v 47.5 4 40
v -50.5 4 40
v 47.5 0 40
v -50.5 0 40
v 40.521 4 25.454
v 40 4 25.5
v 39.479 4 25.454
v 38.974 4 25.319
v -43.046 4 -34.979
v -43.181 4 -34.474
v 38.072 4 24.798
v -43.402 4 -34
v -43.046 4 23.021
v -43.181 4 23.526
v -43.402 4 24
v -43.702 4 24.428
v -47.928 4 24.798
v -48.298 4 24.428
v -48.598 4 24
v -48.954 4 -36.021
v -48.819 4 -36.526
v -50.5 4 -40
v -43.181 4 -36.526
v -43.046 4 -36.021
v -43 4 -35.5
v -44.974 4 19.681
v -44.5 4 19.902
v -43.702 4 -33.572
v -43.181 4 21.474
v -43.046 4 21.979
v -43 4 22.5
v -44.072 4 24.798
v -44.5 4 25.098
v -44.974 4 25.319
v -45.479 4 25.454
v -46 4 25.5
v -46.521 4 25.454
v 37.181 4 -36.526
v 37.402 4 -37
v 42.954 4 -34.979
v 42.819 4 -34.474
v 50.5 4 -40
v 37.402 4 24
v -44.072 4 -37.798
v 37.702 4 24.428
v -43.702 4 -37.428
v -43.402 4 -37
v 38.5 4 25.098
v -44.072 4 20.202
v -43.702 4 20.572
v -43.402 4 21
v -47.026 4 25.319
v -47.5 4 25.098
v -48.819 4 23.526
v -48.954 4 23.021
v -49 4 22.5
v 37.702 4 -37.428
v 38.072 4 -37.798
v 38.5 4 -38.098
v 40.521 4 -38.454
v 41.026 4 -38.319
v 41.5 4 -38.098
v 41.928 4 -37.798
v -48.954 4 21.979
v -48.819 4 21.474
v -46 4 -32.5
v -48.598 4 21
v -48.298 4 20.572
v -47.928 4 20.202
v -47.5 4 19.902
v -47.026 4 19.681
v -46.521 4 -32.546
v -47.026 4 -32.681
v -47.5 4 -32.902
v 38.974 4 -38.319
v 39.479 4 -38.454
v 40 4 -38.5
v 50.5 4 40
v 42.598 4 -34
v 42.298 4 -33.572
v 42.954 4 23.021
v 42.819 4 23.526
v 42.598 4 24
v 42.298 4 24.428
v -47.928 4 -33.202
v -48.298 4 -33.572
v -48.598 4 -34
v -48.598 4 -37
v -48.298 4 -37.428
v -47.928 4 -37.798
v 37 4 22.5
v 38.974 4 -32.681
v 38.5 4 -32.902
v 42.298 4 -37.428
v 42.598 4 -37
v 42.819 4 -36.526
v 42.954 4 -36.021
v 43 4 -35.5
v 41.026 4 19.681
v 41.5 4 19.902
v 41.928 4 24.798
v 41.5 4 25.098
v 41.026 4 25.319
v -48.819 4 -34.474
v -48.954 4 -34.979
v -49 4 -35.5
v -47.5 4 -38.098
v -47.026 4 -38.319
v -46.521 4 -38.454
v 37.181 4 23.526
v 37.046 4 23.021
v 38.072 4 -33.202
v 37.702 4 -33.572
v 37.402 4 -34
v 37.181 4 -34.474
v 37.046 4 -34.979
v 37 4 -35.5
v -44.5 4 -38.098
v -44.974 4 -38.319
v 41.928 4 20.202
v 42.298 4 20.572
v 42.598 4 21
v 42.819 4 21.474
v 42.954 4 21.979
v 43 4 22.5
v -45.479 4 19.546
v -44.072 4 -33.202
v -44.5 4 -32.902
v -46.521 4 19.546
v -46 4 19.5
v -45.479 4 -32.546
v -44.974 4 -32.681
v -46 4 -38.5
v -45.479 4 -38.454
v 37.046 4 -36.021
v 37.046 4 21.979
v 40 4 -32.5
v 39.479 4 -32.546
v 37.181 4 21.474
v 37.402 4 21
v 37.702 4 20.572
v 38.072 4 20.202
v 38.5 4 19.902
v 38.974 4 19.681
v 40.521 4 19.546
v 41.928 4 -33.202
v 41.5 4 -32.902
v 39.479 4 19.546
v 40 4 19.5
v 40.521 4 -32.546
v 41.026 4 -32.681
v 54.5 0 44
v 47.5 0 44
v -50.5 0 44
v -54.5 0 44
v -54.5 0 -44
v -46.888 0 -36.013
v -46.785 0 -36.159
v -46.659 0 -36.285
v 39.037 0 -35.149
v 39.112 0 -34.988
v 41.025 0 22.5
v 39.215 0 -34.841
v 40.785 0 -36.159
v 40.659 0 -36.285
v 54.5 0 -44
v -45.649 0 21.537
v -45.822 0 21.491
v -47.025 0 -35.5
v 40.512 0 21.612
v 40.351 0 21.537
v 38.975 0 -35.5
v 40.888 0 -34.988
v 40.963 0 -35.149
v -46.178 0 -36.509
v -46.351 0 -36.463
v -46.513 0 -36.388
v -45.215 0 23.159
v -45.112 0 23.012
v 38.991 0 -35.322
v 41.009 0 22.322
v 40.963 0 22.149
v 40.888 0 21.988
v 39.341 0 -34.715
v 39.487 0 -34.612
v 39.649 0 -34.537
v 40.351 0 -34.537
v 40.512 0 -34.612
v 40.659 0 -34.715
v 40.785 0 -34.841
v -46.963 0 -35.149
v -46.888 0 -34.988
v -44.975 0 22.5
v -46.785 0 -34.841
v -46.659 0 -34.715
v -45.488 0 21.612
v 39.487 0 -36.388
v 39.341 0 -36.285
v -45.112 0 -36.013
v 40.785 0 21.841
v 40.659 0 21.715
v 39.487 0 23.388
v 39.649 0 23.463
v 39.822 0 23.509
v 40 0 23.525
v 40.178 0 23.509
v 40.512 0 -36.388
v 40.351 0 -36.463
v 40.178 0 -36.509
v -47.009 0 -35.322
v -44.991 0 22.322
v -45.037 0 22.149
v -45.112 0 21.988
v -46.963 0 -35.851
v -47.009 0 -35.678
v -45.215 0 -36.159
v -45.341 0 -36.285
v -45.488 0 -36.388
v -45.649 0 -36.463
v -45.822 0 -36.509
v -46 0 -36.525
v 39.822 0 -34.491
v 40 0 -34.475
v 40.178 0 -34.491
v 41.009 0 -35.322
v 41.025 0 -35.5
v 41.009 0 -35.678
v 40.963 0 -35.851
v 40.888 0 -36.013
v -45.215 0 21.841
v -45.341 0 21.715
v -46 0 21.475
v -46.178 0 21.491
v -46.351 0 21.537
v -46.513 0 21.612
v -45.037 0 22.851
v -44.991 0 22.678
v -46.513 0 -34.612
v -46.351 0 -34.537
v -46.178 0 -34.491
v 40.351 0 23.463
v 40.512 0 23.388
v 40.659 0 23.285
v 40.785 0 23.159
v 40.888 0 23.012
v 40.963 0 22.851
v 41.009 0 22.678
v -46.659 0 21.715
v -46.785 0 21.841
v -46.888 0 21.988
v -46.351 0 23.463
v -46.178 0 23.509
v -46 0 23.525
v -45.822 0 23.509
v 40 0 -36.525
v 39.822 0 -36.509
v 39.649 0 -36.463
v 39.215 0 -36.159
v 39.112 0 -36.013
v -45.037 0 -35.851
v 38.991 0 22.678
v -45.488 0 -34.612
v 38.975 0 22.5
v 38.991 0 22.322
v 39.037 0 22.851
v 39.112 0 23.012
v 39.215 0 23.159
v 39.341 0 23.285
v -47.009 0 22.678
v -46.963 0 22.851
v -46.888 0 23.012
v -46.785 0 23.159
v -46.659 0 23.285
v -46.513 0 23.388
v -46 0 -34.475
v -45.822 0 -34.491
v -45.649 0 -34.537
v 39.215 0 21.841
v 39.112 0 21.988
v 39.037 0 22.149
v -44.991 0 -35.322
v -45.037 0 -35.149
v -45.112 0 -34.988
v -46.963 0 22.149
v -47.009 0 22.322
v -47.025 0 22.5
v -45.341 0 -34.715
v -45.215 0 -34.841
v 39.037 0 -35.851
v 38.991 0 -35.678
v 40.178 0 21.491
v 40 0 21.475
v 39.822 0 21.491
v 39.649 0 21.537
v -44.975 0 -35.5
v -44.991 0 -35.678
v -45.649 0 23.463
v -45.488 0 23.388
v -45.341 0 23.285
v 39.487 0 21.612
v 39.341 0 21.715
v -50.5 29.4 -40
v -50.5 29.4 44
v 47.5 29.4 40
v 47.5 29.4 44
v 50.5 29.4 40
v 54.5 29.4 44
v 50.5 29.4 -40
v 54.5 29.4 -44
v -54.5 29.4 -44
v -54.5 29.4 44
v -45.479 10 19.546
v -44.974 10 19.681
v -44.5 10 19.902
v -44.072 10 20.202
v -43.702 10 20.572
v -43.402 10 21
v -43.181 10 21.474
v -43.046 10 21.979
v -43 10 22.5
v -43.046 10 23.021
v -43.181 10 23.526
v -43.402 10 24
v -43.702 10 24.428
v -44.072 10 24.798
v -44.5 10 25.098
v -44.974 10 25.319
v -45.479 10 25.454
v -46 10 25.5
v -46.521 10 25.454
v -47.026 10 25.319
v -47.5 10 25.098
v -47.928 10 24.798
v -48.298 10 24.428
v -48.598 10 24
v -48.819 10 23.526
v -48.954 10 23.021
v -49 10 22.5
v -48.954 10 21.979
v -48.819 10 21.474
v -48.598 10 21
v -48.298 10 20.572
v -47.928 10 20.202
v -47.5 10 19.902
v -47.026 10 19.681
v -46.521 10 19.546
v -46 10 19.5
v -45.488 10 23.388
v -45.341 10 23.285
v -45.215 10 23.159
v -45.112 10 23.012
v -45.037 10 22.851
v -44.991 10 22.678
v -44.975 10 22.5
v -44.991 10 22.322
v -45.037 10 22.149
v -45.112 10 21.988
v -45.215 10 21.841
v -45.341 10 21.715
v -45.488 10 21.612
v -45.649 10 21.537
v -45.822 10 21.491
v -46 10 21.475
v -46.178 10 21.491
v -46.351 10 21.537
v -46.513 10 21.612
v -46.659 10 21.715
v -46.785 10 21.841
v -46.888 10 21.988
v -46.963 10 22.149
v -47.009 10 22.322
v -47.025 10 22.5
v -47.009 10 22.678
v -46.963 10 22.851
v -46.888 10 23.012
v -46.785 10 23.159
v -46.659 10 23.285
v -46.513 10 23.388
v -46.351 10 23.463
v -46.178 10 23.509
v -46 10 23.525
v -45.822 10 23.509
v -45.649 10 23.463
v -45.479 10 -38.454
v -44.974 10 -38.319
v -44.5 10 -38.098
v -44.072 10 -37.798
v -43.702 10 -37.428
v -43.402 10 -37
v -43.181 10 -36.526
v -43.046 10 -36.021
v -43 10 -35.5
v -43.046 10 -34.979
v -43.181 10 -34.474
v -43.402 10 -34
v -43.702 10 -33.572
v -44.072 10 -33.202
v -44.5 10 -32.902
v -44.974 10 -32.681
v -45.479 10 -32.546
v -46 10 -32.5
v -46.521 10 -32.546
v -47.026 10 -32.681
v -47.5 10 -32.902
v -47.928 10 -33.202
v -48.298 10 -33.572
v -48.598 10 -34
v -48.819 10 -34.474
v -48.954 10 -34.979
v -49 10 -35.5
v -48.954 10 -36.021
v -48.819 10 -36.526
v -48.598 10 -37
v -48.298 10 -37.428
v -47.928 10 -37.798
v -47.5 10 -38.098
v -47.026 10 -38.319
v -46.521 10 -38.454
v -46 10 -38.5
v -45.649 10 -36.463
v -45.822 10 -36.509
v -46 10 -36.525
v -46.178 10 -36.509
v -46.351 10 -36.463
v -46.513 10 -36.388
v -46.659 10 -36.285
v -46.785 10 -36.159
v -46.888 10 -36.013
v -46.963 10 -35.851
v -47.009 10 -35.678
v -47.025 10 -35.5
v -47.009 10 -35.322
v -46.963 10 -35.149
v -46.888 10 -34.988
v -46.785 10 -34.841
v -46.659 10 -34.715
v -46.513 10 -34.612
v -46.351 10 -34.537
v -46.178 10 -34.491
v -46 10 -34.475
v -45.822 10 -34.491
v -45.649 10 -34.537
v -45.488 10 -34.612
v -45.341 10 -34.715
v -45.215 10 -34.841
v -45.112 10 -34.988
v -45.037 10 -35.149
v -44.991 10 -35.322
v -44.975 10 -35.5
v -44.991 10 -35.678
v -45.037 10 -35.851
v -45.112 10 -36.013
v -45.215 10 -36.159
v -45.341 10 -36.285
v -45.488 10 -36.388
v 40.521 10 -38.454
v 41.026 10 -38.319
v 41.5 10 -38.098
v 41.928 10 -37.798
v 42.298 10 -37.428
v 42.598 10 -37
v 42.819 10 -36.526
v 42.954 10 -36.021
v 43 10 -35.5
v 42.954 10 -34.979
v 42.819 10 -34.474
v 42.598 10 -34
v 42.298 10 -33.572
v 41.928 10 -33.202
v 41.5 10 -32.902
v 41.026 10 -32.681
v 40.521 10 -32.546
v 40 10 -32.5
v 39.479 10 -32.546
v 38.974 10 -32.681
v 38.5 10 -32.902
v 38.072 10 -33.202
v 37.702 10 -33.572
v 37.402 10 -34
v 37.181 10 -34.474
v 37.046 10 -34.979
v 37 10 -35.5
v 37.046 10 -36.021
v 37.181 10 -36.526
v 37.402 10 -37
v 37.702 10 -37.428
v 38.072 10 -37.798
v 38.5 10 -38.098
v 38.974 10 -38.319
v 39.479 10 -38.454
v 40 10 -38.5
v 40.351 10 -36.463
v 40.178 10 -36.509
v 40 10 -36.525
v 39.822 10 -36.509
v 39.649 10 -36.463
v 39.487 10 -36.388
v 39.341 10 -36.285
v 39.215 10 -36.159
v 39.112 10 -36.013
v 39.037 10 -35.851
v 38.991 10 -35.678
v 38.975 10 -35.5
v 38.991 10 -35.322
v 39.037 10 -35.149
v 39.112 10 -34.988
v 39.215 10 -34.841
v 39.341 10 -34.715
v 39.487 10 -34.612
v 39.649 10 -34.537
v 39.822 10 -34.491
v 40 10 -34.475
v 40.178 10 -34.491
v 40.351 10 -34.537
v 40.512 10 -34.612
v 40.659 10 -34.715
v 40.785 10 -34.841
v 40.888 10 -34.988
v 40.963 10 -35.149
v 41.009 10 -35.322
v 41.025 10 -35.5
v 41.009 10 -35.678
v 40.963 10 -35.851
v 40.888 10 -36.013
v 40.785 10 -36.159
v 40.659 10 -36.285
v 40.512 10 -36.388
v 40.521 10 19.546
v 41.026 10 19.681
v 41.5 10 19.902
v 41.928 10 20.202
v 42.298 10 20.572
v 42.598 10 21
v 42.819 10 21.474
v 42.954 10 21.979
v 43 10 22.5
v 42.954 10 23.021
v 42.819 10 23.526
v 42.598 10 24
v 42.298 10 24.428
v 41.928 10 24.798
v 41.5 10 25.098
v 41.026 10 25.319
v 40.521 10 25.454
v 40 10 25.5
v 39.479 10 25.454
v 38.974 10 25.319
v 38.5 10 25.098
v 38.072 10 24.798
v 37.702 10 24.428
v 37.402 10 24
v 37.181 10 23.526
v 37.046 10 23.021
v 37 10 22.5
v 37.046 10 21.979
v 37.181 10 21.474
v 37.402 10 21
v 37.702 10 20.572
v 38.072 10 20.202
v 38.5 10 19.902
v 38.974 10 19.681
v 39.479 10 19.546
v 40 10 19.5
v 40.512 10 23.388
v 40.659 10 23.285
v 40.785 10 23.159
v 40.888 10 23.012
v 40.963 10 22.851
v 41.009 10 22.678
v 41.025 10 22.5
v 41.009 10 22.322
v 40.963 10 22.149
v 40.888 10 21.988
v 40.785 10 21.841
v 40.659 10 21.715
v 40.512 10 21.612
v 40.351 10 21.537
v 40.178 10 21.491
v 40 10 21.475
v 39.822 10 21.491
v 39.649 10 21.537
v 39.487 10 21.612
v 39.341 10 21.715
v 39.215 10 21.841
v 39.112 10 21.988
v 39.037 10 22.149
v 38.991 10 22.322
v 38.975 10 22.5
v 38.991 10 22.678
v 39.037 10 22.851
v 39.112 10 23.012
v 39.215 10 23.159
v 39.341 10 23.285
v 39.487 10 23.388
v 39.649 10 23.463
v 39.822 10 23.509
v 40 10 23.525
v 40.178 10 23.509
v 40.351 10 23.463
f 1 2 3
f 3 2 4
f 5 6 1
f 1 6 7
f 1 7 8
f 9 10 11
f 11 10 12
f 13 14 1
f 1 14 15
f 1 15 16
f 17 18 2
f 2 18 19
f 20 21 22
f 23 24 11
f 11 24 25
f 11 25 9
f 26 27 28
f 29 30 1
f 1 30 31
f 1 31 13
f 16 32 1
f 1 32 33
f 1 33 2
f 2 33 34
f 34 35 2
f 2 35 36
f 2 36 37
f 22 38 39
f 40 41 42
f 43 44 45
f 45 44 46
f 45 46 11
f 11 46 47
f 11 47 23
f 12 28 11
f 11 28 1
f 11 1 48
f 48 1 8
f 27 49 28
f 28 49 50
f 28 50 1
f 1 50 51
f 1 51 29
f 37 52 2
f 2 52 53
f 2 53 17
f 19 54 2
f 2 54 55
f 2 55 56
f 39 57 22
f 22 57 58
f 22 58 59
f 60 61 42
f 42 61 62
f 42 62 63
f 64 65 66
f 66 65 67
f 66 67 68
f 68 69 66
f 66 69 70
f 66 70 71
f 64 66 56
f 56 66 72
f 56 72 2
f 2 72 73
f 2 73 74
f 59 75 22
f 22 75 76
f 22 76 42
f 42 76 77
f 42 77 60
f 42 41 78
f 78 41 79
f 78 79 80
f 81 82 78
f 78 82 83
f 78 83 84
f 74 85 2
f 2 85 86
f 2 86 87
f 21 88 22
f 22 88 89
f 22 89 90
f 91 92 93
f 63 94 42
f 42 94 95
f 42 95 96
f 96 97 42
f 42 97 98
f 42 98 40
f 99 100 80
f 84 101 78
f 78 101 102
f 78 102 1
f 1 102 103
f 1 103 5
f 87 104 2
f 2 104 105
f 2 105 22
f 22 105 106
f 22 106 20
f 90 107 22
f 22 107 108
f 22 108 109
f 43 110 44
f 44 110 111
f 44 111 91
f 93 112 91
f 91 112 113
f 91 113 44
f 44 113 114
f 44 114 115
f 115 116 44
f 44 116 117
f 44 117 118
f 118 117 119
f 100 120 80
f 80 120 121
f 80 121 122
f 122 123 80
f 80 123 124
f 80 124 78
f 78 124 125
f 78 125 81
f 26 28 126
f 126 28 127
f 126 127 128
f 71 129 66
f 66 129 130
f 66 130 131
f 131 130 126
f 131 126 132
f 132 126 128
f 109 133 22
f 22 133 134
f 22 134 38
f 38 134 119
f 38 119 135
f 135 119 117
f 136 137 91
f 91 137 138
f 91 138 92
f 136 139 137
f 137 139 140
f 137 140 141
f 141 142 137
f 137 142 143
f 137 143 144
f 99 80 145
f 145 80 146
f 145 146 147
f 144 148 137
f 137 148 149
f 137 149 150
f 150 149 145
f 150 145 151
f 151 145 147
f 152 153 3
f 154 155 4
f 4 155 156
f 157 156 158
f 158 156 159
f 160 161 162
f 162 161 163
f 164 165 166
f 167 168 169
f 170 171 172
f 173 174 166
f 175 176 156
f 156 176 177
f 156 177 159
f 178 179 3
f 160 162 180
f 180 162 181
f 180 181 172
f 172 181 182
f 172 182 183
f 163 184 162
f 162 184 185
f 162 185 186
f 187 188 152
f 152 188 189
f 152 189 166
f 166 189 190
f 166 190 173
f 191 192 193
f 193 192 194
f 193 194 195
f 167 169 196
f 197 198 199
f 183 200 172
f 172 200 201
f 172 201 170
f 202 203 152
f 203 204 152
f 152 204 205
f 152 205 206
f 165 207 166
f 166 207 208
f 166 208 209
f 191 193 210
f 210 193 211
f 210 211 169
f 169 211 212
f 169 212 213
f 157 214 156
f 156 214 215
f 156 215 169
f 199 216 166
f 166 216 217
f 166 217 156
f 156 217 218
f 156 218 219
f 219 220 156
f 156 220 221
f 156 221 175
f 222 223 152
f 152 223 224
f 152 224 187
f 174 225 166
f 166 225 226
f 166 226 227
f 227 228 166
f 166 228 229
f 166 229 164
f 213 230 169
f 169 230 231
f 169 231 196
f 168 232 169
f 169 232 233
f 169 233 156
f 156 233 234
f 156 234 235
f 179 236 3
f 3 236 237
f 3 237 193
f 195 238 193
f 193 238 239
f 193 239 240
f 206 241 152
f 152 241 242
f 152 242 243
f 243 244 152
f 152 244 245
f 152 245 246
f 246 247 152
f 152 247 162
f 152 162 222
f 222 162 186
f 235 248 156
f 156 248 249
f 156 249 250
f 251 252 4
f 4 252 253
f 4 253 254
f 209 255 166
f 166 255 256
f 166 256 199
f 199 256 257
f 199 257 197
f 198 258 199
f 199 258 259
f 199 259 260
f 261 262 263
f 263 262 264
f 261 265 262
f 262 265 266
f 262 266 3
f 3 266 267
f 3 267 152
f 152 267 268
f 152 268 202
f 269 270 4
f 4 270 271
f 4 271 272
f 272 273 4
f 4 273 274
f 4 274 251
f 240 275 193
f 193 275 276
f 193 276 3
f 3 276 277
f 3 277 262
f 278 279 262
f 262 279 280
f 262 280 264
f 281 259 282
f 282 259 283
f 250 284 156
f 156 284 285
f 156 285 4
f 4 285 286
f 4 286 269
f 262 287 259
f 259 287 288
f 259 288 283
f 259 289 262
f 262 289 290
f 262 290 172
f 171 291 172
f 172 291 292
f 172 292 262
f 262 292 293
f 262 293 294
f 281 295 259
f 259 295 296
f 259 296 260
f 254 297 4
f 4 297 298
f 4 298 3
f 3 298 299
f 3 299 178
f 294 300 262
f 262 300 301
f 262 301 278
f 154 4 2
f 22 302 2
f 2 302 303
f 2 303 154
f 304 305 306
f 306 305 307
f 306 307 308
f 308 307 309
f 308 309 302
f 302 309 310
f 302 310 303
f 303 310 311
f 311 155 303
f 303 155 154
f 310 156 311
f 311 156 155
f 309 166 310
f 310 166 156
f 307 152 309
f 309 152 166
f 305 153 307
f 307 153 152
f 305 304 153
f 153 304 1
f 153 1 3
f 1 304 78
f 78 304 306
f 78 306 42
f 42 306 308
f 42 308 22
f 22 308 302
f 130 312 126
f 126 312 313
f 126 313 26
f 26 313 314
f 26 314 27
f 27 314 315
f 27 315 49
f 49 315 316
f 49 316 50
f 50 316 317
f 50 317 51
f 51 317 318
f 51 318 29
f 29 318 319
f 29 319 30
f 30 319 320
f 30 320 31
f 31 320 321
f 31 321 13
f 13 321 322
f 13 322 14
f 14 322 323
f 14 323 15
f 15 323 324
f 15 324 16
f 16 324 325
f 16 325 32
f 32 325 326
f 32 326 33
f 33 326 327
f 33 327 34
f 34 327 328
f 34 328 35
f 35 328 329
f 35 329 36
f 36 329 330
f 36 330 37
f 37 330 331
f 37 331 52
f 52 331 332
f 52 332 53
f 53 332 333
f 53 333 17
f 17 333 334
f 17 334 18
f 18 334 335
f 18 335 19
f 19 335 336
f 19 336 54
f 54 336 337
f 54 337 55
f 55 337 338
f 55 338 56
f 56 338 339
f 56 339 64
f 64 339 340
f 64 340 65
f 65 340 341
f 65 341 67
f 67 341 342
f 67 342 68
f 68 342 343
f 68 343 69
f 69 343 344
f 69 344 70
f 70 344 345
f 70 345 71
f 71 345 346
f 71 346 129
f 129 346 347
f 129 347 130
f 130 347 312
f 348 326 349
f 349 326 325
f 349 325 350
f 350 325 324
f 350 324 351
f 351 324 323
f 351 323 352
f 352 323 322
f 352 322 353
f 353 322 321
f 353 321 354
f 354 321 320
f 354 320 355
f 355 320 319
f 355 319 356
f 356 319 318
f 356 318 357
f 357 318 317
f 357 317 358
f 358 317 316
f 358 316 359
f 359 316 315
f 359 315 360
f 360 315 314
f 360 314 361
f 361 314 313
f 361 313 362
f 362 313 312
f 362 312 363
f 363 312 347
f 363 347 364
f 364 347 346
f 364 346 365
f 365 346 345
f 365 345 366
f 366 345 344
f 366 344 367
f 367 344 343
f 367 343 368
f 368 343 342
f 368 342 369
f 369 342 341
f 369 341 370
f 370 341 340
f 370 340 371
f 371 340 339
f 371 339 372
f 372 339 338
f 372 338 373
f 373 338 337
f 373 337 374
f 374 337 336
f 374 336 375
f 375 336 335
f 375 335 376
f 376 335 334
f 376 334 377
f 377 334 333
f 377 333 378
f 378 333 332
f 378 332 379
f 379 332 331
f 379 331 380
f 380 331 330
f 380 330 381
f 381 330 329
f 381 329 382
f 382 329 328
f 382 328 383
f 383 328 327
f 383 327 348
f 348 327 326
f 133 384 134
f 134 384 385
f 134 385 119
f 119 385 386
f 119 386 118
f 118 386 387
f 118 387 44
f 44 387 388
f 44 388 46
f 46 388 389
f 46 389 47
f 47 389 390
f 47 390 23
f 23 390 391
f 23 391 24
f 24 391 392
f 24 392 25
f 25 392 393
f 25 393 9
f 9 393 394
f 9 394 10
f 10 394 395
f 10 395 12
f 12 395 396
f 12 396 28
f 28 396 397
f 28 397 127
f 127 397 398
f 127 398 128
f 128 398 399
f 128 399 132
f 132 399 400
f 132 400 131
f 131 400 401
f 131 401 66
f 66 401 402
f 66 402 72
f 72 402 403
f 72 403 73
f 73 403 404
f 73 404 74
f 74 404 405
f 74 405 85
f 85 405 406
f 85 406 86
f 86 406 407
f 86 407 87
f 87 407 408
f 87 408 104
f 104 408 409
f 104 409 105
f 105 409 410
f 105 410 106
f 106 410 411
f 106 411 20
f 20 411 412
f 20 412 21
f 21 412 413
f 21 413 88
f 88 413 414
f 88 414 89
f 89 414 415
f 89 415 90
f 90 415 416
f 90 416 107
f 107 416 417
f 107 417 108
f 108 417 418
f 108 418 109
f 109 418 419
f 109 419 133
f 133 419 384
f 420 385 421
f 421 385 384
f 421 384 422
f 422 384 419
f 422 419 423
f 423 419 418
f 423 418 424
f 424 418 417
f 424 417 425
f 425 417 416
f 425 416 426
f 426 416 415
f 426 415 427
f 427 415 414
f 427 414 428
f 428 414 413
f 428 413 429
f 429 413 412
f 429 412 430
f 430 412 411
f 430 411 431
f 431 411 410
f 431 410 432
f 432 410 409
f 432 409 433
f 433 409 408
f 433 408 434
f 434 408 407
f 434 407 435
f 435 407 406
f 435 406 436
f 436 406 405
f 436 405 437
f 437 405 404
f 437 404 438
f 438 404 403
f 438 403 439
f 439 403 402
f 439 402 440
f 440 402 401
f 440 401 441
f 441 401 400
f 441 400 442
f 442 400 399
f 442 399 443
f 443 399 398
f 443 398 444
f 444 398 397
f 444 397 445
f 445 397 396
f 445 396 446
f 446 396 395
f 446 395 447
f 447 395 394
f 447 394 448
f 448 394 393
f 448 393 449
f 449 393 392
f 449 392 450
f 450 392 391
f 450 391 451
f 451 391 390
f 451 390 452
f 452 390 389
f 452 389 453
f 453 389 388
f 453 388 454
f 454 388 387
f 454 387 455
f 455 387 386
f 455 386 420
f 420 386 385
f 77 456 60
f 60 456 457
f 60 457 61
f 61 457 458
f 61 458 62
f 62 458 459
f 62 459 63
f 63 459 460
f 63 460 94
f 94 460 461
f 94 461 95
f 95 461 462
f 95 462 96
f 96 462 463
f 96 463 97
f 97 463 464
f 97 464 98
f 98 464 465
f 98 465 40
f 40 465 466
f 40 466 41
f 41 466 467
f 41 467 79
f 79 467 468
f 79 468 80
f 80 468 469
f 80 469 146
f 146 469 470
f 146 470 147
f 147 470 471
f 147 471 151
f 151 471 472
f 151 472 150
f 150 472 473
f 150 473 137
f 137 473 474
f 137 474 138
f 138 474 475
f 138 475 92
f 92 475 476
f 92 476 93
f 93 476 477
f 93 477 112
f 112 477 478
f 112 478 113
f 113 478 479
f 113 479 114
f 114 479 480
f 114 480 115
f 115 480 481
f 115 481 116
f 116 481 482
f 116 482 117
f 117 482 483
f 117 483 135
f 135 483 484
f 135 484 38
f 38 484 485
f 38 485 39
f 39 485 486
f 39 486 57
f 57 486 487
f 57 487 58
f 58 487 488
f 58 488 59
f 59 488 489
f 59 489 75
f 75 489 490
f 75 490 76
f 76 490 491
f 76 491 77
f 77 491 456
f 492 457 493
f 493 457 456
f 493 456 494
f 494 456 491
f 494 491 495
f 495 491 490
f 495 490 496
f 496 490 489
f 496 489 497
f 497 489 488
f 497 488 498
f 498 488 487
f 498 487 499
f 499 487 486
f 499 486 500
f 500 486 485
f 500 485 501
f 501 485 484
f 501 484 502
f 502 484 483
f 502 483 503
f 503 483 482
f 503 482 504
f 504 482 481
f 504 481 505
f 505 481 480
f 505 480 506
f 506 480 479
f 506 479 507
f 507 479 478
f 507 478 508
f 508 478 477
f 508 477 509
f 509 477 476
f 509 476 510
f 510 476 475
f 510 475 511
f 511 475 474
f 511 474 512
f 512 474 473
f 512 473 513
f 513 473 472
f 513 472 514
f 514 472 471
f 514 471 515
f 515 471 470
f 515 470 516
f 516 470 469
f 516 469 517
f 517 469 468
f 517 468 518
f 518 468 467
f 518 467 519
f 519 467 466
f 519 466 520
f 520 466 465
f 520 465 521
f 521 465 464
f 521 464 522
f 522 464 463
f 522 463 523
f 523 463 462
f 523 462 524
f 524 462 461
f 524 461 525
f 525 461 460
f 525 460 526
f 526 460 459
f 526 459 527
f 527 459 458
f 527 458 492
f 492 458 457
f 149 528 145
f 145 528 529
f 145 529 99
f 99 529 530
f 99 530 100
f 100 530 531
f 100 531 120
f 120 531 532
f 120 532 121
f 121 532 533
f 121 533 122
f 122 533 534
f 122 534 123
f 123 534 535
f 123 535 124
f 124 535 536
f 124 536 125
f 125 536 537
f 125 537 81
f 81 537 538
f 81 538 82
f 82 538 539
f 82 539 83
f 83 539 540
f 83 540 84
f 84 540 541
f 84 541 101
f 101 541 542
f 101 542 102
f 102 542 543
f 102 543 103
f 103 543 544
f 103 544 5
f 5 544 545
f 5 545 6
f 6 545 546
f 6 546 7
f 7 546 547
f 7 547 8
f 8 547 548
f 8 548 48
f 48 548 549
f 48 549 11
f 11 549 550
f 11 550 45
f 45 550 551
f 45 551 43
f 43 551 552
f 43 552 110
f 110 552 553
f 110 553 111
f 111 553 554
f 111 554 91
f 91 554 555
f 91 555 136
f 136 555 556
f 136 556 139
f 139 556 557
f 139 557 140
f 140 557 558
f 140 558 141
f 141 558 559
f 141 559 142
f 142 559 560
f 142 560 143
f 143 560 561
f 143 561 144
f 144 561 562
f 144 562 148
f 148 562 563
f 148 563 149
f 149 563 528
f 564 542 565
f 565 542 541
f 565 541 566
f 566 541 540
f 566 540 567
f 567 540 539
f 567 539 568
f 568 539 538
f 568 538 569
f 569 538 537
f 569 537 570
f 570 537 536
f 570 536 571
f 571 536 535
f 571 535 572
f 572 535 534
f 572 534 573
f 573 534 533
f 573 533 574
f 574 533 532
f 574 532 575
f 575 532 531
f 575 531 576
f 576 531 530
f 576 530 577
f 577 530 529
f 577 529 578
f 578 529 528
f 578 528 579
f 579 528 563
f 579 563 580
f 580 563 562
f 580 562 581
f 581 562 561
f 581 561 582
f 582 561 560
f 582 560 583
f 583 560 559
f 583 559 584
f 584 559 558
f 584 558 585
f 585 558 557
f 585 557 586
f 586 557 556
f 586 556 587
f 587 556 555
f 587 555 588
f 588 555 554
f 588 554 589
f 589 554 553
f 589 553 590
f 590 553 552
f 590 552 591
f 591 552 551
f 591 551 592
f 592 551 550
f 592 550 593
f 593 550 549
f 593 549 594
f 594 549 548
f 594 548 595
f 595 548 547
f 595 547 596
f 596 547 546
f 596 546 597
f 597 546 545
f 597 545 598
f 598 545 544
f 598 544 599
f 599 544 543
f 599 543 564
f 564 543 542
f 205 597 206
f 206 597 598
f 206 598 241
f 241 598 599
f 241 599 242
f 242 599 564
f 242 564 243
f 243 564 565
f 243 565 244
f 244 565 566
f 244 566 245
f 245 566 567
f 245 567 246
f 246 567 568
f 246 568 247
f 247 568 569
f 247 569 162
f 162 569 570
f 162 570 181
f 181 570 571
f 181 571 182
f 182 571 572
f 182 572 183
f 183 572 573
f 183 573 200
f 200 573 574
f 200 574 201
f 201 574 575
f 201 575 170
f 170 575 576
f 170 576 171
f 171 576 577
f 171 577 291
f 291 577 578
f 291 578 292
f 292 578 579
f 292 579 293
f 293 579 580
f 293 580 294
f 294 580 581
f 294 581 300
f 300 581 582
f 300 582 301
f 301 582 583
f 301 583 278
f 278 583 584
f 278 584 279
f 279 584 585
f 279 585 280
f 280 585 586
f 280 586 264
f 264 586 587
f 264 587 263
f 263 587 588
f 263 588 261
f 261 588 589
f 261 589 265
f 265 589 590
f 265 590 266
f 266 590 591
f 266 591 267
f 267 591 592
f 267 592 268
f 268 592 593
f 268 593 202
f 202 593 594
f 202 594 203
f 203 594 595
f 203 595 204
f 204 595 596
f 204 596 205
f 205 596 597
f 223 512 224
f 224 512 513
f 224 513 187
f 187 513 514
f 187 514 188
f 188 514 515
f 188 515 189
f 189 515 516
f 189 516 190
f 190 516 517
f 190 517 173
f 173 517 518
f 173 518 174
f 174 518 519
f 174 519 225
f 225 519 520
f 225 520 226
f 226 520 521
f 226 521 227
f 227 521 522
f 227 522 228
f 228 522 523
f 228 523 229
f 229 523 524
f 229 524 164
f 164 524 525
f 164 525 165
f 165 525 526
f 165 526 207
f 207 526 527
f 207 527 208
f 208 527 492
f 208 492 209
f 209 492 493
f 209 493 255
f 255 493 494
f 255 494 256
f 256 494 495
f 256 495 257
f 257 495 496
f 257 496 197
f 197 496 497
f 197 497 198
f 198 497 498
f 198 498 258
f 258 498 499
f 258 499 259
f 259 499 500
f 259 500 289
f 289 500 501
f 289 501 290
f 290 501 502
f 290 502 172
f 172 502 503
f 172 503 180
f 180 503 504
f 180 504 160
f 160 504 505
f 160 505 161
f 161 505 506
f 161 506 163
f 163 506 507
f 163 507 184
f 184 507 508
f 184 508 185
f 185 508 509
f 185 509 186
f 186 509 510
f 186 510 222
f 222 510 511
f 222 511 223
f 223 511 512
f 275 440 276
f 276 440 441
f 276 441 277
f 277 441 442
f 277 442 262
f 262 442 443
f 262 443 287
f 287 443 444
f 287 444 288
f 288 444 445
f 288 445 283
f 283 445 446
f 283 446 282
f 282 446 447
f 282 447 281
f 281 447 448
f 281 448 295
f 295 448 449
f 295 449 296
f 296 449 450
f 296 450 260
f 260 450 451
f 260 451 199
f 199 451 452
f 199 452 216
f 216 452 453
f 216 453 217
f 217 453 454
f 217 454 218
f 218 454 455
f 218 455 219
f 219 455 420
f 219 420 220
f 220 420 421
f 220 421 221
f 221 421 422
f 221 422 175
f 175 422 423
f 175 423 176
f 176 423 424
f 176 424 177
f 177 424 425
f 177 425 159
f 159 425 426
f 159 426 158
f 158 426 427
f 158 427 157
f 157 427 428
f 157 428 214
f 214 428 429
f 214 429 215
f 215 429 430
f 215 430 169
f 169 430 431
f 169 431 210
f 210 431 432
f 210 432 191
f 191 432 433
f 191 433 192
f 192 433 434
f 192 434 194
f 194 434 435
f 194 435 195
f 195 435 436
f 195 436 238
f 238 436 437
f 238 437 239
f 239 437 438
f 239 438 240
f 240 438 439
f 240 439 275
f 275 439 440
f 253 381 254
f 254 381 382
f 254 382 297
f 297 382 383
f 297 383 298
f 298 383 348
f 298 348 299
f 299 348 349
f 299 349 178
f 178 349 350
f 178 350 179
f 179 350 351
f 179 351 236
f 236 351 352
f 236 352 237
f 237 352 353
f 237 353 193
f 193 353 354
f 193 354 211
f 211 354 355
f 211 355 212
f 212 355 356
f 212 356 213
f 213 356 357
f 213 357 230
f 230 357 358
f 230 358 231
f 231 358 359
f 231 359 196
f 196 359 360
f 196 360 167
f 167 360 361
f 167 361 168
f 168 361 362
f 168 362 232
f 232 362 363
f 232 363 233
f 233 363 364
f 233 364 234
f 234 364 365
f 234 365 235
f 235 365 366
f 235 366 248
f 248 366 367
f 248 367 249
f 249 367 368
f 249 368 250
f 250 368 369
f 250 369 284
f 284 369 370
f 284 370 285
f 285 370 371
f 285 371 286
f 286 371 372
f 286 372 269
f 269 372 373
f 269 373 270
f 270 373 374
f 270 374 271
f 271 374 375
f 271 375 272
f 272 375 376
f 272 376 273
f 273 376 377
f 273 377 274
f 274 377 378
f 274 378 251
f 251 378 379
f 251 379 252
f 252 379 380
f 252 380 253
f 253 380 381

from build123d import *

# Parameters (mm, degrees)
SKETCH2_W                = 101
SKETCH2_H                = 80
BOSS_EXTRUDE1_DEPTH      = 4
BOSS_EXTRUDE2_DEPTH      = 29.4
SKETCH9_R                = 3
BOSS_EXTRUDE3_DEPTH      = 6
M2_5X0_45_TAPPED_HOLE1_D = 2.05


with BuildPart() as part:
    # Sketch2 → Boss-Extrude1 (new body)
    with BuildSketch(Plane(origin=(0, 0, 0), x_dir=(1, 0, 0), z_dir=(0, 1, 0))):
        Rectangle(SKETCH2_W, SKETCH2_H)
    extrude(amount=BOSS_EXTRUDE1_DEPTH)

    # Sketch3 → Boss-Extrude2 (add)
    with BuildSketch(Plane.XZ):
        Polygon((50.5, -40), (-50.5, -40), (-50.5, 40), (-50.5, 44), (-54.5, 44), (-54.5, -44), (54.5, -44), (54.5, 44), (47.5, 44), (47.5, 40), (50.5, 40), align=None)
    extrude(amount=-BOSS_EXTRUDE2_DEPTH)

    # Sketch9 → Boss-Extrude3 (add)
    with BuildSketch(Plane(origin=(0, 4, 0), x_dir=(1, 0, 0), z_dir=(0, 1, 0))):
        with Locations(Location((-46, -22.5, 0), (0, 0, 270))):
            Circle(SKETCH9_R)
        with Locations(Location((-46, 35.5, 0), (0, 0, 270))):
            Circle(SKETCH9_R)
        with Locations(Location((40, 35.5, 0), (0, 0, 270))):
            Circle(SKETCH9_R)
        with Locations(Location((40, -22.5, 0), (0, 0, 270))):
            Circle(SKETCH9_R)
    extrude(amount=BOSS_EXTRUDE3_DEPTH)

    # M2.5x0.45 Tapped Hole1 (through all)
    with Locations(Plane(origin=(0, 10, 0), x_dir=(1, 0, 0), z_dir=(0, 1, 0))):
        with Locations((-46, -22.5), (-46, 35.5), (40, 35.5), (40, -22.5)):
            Hole(M2_5X0_45_TAPPED_HOLE1_D / 2)


solid = part.part
